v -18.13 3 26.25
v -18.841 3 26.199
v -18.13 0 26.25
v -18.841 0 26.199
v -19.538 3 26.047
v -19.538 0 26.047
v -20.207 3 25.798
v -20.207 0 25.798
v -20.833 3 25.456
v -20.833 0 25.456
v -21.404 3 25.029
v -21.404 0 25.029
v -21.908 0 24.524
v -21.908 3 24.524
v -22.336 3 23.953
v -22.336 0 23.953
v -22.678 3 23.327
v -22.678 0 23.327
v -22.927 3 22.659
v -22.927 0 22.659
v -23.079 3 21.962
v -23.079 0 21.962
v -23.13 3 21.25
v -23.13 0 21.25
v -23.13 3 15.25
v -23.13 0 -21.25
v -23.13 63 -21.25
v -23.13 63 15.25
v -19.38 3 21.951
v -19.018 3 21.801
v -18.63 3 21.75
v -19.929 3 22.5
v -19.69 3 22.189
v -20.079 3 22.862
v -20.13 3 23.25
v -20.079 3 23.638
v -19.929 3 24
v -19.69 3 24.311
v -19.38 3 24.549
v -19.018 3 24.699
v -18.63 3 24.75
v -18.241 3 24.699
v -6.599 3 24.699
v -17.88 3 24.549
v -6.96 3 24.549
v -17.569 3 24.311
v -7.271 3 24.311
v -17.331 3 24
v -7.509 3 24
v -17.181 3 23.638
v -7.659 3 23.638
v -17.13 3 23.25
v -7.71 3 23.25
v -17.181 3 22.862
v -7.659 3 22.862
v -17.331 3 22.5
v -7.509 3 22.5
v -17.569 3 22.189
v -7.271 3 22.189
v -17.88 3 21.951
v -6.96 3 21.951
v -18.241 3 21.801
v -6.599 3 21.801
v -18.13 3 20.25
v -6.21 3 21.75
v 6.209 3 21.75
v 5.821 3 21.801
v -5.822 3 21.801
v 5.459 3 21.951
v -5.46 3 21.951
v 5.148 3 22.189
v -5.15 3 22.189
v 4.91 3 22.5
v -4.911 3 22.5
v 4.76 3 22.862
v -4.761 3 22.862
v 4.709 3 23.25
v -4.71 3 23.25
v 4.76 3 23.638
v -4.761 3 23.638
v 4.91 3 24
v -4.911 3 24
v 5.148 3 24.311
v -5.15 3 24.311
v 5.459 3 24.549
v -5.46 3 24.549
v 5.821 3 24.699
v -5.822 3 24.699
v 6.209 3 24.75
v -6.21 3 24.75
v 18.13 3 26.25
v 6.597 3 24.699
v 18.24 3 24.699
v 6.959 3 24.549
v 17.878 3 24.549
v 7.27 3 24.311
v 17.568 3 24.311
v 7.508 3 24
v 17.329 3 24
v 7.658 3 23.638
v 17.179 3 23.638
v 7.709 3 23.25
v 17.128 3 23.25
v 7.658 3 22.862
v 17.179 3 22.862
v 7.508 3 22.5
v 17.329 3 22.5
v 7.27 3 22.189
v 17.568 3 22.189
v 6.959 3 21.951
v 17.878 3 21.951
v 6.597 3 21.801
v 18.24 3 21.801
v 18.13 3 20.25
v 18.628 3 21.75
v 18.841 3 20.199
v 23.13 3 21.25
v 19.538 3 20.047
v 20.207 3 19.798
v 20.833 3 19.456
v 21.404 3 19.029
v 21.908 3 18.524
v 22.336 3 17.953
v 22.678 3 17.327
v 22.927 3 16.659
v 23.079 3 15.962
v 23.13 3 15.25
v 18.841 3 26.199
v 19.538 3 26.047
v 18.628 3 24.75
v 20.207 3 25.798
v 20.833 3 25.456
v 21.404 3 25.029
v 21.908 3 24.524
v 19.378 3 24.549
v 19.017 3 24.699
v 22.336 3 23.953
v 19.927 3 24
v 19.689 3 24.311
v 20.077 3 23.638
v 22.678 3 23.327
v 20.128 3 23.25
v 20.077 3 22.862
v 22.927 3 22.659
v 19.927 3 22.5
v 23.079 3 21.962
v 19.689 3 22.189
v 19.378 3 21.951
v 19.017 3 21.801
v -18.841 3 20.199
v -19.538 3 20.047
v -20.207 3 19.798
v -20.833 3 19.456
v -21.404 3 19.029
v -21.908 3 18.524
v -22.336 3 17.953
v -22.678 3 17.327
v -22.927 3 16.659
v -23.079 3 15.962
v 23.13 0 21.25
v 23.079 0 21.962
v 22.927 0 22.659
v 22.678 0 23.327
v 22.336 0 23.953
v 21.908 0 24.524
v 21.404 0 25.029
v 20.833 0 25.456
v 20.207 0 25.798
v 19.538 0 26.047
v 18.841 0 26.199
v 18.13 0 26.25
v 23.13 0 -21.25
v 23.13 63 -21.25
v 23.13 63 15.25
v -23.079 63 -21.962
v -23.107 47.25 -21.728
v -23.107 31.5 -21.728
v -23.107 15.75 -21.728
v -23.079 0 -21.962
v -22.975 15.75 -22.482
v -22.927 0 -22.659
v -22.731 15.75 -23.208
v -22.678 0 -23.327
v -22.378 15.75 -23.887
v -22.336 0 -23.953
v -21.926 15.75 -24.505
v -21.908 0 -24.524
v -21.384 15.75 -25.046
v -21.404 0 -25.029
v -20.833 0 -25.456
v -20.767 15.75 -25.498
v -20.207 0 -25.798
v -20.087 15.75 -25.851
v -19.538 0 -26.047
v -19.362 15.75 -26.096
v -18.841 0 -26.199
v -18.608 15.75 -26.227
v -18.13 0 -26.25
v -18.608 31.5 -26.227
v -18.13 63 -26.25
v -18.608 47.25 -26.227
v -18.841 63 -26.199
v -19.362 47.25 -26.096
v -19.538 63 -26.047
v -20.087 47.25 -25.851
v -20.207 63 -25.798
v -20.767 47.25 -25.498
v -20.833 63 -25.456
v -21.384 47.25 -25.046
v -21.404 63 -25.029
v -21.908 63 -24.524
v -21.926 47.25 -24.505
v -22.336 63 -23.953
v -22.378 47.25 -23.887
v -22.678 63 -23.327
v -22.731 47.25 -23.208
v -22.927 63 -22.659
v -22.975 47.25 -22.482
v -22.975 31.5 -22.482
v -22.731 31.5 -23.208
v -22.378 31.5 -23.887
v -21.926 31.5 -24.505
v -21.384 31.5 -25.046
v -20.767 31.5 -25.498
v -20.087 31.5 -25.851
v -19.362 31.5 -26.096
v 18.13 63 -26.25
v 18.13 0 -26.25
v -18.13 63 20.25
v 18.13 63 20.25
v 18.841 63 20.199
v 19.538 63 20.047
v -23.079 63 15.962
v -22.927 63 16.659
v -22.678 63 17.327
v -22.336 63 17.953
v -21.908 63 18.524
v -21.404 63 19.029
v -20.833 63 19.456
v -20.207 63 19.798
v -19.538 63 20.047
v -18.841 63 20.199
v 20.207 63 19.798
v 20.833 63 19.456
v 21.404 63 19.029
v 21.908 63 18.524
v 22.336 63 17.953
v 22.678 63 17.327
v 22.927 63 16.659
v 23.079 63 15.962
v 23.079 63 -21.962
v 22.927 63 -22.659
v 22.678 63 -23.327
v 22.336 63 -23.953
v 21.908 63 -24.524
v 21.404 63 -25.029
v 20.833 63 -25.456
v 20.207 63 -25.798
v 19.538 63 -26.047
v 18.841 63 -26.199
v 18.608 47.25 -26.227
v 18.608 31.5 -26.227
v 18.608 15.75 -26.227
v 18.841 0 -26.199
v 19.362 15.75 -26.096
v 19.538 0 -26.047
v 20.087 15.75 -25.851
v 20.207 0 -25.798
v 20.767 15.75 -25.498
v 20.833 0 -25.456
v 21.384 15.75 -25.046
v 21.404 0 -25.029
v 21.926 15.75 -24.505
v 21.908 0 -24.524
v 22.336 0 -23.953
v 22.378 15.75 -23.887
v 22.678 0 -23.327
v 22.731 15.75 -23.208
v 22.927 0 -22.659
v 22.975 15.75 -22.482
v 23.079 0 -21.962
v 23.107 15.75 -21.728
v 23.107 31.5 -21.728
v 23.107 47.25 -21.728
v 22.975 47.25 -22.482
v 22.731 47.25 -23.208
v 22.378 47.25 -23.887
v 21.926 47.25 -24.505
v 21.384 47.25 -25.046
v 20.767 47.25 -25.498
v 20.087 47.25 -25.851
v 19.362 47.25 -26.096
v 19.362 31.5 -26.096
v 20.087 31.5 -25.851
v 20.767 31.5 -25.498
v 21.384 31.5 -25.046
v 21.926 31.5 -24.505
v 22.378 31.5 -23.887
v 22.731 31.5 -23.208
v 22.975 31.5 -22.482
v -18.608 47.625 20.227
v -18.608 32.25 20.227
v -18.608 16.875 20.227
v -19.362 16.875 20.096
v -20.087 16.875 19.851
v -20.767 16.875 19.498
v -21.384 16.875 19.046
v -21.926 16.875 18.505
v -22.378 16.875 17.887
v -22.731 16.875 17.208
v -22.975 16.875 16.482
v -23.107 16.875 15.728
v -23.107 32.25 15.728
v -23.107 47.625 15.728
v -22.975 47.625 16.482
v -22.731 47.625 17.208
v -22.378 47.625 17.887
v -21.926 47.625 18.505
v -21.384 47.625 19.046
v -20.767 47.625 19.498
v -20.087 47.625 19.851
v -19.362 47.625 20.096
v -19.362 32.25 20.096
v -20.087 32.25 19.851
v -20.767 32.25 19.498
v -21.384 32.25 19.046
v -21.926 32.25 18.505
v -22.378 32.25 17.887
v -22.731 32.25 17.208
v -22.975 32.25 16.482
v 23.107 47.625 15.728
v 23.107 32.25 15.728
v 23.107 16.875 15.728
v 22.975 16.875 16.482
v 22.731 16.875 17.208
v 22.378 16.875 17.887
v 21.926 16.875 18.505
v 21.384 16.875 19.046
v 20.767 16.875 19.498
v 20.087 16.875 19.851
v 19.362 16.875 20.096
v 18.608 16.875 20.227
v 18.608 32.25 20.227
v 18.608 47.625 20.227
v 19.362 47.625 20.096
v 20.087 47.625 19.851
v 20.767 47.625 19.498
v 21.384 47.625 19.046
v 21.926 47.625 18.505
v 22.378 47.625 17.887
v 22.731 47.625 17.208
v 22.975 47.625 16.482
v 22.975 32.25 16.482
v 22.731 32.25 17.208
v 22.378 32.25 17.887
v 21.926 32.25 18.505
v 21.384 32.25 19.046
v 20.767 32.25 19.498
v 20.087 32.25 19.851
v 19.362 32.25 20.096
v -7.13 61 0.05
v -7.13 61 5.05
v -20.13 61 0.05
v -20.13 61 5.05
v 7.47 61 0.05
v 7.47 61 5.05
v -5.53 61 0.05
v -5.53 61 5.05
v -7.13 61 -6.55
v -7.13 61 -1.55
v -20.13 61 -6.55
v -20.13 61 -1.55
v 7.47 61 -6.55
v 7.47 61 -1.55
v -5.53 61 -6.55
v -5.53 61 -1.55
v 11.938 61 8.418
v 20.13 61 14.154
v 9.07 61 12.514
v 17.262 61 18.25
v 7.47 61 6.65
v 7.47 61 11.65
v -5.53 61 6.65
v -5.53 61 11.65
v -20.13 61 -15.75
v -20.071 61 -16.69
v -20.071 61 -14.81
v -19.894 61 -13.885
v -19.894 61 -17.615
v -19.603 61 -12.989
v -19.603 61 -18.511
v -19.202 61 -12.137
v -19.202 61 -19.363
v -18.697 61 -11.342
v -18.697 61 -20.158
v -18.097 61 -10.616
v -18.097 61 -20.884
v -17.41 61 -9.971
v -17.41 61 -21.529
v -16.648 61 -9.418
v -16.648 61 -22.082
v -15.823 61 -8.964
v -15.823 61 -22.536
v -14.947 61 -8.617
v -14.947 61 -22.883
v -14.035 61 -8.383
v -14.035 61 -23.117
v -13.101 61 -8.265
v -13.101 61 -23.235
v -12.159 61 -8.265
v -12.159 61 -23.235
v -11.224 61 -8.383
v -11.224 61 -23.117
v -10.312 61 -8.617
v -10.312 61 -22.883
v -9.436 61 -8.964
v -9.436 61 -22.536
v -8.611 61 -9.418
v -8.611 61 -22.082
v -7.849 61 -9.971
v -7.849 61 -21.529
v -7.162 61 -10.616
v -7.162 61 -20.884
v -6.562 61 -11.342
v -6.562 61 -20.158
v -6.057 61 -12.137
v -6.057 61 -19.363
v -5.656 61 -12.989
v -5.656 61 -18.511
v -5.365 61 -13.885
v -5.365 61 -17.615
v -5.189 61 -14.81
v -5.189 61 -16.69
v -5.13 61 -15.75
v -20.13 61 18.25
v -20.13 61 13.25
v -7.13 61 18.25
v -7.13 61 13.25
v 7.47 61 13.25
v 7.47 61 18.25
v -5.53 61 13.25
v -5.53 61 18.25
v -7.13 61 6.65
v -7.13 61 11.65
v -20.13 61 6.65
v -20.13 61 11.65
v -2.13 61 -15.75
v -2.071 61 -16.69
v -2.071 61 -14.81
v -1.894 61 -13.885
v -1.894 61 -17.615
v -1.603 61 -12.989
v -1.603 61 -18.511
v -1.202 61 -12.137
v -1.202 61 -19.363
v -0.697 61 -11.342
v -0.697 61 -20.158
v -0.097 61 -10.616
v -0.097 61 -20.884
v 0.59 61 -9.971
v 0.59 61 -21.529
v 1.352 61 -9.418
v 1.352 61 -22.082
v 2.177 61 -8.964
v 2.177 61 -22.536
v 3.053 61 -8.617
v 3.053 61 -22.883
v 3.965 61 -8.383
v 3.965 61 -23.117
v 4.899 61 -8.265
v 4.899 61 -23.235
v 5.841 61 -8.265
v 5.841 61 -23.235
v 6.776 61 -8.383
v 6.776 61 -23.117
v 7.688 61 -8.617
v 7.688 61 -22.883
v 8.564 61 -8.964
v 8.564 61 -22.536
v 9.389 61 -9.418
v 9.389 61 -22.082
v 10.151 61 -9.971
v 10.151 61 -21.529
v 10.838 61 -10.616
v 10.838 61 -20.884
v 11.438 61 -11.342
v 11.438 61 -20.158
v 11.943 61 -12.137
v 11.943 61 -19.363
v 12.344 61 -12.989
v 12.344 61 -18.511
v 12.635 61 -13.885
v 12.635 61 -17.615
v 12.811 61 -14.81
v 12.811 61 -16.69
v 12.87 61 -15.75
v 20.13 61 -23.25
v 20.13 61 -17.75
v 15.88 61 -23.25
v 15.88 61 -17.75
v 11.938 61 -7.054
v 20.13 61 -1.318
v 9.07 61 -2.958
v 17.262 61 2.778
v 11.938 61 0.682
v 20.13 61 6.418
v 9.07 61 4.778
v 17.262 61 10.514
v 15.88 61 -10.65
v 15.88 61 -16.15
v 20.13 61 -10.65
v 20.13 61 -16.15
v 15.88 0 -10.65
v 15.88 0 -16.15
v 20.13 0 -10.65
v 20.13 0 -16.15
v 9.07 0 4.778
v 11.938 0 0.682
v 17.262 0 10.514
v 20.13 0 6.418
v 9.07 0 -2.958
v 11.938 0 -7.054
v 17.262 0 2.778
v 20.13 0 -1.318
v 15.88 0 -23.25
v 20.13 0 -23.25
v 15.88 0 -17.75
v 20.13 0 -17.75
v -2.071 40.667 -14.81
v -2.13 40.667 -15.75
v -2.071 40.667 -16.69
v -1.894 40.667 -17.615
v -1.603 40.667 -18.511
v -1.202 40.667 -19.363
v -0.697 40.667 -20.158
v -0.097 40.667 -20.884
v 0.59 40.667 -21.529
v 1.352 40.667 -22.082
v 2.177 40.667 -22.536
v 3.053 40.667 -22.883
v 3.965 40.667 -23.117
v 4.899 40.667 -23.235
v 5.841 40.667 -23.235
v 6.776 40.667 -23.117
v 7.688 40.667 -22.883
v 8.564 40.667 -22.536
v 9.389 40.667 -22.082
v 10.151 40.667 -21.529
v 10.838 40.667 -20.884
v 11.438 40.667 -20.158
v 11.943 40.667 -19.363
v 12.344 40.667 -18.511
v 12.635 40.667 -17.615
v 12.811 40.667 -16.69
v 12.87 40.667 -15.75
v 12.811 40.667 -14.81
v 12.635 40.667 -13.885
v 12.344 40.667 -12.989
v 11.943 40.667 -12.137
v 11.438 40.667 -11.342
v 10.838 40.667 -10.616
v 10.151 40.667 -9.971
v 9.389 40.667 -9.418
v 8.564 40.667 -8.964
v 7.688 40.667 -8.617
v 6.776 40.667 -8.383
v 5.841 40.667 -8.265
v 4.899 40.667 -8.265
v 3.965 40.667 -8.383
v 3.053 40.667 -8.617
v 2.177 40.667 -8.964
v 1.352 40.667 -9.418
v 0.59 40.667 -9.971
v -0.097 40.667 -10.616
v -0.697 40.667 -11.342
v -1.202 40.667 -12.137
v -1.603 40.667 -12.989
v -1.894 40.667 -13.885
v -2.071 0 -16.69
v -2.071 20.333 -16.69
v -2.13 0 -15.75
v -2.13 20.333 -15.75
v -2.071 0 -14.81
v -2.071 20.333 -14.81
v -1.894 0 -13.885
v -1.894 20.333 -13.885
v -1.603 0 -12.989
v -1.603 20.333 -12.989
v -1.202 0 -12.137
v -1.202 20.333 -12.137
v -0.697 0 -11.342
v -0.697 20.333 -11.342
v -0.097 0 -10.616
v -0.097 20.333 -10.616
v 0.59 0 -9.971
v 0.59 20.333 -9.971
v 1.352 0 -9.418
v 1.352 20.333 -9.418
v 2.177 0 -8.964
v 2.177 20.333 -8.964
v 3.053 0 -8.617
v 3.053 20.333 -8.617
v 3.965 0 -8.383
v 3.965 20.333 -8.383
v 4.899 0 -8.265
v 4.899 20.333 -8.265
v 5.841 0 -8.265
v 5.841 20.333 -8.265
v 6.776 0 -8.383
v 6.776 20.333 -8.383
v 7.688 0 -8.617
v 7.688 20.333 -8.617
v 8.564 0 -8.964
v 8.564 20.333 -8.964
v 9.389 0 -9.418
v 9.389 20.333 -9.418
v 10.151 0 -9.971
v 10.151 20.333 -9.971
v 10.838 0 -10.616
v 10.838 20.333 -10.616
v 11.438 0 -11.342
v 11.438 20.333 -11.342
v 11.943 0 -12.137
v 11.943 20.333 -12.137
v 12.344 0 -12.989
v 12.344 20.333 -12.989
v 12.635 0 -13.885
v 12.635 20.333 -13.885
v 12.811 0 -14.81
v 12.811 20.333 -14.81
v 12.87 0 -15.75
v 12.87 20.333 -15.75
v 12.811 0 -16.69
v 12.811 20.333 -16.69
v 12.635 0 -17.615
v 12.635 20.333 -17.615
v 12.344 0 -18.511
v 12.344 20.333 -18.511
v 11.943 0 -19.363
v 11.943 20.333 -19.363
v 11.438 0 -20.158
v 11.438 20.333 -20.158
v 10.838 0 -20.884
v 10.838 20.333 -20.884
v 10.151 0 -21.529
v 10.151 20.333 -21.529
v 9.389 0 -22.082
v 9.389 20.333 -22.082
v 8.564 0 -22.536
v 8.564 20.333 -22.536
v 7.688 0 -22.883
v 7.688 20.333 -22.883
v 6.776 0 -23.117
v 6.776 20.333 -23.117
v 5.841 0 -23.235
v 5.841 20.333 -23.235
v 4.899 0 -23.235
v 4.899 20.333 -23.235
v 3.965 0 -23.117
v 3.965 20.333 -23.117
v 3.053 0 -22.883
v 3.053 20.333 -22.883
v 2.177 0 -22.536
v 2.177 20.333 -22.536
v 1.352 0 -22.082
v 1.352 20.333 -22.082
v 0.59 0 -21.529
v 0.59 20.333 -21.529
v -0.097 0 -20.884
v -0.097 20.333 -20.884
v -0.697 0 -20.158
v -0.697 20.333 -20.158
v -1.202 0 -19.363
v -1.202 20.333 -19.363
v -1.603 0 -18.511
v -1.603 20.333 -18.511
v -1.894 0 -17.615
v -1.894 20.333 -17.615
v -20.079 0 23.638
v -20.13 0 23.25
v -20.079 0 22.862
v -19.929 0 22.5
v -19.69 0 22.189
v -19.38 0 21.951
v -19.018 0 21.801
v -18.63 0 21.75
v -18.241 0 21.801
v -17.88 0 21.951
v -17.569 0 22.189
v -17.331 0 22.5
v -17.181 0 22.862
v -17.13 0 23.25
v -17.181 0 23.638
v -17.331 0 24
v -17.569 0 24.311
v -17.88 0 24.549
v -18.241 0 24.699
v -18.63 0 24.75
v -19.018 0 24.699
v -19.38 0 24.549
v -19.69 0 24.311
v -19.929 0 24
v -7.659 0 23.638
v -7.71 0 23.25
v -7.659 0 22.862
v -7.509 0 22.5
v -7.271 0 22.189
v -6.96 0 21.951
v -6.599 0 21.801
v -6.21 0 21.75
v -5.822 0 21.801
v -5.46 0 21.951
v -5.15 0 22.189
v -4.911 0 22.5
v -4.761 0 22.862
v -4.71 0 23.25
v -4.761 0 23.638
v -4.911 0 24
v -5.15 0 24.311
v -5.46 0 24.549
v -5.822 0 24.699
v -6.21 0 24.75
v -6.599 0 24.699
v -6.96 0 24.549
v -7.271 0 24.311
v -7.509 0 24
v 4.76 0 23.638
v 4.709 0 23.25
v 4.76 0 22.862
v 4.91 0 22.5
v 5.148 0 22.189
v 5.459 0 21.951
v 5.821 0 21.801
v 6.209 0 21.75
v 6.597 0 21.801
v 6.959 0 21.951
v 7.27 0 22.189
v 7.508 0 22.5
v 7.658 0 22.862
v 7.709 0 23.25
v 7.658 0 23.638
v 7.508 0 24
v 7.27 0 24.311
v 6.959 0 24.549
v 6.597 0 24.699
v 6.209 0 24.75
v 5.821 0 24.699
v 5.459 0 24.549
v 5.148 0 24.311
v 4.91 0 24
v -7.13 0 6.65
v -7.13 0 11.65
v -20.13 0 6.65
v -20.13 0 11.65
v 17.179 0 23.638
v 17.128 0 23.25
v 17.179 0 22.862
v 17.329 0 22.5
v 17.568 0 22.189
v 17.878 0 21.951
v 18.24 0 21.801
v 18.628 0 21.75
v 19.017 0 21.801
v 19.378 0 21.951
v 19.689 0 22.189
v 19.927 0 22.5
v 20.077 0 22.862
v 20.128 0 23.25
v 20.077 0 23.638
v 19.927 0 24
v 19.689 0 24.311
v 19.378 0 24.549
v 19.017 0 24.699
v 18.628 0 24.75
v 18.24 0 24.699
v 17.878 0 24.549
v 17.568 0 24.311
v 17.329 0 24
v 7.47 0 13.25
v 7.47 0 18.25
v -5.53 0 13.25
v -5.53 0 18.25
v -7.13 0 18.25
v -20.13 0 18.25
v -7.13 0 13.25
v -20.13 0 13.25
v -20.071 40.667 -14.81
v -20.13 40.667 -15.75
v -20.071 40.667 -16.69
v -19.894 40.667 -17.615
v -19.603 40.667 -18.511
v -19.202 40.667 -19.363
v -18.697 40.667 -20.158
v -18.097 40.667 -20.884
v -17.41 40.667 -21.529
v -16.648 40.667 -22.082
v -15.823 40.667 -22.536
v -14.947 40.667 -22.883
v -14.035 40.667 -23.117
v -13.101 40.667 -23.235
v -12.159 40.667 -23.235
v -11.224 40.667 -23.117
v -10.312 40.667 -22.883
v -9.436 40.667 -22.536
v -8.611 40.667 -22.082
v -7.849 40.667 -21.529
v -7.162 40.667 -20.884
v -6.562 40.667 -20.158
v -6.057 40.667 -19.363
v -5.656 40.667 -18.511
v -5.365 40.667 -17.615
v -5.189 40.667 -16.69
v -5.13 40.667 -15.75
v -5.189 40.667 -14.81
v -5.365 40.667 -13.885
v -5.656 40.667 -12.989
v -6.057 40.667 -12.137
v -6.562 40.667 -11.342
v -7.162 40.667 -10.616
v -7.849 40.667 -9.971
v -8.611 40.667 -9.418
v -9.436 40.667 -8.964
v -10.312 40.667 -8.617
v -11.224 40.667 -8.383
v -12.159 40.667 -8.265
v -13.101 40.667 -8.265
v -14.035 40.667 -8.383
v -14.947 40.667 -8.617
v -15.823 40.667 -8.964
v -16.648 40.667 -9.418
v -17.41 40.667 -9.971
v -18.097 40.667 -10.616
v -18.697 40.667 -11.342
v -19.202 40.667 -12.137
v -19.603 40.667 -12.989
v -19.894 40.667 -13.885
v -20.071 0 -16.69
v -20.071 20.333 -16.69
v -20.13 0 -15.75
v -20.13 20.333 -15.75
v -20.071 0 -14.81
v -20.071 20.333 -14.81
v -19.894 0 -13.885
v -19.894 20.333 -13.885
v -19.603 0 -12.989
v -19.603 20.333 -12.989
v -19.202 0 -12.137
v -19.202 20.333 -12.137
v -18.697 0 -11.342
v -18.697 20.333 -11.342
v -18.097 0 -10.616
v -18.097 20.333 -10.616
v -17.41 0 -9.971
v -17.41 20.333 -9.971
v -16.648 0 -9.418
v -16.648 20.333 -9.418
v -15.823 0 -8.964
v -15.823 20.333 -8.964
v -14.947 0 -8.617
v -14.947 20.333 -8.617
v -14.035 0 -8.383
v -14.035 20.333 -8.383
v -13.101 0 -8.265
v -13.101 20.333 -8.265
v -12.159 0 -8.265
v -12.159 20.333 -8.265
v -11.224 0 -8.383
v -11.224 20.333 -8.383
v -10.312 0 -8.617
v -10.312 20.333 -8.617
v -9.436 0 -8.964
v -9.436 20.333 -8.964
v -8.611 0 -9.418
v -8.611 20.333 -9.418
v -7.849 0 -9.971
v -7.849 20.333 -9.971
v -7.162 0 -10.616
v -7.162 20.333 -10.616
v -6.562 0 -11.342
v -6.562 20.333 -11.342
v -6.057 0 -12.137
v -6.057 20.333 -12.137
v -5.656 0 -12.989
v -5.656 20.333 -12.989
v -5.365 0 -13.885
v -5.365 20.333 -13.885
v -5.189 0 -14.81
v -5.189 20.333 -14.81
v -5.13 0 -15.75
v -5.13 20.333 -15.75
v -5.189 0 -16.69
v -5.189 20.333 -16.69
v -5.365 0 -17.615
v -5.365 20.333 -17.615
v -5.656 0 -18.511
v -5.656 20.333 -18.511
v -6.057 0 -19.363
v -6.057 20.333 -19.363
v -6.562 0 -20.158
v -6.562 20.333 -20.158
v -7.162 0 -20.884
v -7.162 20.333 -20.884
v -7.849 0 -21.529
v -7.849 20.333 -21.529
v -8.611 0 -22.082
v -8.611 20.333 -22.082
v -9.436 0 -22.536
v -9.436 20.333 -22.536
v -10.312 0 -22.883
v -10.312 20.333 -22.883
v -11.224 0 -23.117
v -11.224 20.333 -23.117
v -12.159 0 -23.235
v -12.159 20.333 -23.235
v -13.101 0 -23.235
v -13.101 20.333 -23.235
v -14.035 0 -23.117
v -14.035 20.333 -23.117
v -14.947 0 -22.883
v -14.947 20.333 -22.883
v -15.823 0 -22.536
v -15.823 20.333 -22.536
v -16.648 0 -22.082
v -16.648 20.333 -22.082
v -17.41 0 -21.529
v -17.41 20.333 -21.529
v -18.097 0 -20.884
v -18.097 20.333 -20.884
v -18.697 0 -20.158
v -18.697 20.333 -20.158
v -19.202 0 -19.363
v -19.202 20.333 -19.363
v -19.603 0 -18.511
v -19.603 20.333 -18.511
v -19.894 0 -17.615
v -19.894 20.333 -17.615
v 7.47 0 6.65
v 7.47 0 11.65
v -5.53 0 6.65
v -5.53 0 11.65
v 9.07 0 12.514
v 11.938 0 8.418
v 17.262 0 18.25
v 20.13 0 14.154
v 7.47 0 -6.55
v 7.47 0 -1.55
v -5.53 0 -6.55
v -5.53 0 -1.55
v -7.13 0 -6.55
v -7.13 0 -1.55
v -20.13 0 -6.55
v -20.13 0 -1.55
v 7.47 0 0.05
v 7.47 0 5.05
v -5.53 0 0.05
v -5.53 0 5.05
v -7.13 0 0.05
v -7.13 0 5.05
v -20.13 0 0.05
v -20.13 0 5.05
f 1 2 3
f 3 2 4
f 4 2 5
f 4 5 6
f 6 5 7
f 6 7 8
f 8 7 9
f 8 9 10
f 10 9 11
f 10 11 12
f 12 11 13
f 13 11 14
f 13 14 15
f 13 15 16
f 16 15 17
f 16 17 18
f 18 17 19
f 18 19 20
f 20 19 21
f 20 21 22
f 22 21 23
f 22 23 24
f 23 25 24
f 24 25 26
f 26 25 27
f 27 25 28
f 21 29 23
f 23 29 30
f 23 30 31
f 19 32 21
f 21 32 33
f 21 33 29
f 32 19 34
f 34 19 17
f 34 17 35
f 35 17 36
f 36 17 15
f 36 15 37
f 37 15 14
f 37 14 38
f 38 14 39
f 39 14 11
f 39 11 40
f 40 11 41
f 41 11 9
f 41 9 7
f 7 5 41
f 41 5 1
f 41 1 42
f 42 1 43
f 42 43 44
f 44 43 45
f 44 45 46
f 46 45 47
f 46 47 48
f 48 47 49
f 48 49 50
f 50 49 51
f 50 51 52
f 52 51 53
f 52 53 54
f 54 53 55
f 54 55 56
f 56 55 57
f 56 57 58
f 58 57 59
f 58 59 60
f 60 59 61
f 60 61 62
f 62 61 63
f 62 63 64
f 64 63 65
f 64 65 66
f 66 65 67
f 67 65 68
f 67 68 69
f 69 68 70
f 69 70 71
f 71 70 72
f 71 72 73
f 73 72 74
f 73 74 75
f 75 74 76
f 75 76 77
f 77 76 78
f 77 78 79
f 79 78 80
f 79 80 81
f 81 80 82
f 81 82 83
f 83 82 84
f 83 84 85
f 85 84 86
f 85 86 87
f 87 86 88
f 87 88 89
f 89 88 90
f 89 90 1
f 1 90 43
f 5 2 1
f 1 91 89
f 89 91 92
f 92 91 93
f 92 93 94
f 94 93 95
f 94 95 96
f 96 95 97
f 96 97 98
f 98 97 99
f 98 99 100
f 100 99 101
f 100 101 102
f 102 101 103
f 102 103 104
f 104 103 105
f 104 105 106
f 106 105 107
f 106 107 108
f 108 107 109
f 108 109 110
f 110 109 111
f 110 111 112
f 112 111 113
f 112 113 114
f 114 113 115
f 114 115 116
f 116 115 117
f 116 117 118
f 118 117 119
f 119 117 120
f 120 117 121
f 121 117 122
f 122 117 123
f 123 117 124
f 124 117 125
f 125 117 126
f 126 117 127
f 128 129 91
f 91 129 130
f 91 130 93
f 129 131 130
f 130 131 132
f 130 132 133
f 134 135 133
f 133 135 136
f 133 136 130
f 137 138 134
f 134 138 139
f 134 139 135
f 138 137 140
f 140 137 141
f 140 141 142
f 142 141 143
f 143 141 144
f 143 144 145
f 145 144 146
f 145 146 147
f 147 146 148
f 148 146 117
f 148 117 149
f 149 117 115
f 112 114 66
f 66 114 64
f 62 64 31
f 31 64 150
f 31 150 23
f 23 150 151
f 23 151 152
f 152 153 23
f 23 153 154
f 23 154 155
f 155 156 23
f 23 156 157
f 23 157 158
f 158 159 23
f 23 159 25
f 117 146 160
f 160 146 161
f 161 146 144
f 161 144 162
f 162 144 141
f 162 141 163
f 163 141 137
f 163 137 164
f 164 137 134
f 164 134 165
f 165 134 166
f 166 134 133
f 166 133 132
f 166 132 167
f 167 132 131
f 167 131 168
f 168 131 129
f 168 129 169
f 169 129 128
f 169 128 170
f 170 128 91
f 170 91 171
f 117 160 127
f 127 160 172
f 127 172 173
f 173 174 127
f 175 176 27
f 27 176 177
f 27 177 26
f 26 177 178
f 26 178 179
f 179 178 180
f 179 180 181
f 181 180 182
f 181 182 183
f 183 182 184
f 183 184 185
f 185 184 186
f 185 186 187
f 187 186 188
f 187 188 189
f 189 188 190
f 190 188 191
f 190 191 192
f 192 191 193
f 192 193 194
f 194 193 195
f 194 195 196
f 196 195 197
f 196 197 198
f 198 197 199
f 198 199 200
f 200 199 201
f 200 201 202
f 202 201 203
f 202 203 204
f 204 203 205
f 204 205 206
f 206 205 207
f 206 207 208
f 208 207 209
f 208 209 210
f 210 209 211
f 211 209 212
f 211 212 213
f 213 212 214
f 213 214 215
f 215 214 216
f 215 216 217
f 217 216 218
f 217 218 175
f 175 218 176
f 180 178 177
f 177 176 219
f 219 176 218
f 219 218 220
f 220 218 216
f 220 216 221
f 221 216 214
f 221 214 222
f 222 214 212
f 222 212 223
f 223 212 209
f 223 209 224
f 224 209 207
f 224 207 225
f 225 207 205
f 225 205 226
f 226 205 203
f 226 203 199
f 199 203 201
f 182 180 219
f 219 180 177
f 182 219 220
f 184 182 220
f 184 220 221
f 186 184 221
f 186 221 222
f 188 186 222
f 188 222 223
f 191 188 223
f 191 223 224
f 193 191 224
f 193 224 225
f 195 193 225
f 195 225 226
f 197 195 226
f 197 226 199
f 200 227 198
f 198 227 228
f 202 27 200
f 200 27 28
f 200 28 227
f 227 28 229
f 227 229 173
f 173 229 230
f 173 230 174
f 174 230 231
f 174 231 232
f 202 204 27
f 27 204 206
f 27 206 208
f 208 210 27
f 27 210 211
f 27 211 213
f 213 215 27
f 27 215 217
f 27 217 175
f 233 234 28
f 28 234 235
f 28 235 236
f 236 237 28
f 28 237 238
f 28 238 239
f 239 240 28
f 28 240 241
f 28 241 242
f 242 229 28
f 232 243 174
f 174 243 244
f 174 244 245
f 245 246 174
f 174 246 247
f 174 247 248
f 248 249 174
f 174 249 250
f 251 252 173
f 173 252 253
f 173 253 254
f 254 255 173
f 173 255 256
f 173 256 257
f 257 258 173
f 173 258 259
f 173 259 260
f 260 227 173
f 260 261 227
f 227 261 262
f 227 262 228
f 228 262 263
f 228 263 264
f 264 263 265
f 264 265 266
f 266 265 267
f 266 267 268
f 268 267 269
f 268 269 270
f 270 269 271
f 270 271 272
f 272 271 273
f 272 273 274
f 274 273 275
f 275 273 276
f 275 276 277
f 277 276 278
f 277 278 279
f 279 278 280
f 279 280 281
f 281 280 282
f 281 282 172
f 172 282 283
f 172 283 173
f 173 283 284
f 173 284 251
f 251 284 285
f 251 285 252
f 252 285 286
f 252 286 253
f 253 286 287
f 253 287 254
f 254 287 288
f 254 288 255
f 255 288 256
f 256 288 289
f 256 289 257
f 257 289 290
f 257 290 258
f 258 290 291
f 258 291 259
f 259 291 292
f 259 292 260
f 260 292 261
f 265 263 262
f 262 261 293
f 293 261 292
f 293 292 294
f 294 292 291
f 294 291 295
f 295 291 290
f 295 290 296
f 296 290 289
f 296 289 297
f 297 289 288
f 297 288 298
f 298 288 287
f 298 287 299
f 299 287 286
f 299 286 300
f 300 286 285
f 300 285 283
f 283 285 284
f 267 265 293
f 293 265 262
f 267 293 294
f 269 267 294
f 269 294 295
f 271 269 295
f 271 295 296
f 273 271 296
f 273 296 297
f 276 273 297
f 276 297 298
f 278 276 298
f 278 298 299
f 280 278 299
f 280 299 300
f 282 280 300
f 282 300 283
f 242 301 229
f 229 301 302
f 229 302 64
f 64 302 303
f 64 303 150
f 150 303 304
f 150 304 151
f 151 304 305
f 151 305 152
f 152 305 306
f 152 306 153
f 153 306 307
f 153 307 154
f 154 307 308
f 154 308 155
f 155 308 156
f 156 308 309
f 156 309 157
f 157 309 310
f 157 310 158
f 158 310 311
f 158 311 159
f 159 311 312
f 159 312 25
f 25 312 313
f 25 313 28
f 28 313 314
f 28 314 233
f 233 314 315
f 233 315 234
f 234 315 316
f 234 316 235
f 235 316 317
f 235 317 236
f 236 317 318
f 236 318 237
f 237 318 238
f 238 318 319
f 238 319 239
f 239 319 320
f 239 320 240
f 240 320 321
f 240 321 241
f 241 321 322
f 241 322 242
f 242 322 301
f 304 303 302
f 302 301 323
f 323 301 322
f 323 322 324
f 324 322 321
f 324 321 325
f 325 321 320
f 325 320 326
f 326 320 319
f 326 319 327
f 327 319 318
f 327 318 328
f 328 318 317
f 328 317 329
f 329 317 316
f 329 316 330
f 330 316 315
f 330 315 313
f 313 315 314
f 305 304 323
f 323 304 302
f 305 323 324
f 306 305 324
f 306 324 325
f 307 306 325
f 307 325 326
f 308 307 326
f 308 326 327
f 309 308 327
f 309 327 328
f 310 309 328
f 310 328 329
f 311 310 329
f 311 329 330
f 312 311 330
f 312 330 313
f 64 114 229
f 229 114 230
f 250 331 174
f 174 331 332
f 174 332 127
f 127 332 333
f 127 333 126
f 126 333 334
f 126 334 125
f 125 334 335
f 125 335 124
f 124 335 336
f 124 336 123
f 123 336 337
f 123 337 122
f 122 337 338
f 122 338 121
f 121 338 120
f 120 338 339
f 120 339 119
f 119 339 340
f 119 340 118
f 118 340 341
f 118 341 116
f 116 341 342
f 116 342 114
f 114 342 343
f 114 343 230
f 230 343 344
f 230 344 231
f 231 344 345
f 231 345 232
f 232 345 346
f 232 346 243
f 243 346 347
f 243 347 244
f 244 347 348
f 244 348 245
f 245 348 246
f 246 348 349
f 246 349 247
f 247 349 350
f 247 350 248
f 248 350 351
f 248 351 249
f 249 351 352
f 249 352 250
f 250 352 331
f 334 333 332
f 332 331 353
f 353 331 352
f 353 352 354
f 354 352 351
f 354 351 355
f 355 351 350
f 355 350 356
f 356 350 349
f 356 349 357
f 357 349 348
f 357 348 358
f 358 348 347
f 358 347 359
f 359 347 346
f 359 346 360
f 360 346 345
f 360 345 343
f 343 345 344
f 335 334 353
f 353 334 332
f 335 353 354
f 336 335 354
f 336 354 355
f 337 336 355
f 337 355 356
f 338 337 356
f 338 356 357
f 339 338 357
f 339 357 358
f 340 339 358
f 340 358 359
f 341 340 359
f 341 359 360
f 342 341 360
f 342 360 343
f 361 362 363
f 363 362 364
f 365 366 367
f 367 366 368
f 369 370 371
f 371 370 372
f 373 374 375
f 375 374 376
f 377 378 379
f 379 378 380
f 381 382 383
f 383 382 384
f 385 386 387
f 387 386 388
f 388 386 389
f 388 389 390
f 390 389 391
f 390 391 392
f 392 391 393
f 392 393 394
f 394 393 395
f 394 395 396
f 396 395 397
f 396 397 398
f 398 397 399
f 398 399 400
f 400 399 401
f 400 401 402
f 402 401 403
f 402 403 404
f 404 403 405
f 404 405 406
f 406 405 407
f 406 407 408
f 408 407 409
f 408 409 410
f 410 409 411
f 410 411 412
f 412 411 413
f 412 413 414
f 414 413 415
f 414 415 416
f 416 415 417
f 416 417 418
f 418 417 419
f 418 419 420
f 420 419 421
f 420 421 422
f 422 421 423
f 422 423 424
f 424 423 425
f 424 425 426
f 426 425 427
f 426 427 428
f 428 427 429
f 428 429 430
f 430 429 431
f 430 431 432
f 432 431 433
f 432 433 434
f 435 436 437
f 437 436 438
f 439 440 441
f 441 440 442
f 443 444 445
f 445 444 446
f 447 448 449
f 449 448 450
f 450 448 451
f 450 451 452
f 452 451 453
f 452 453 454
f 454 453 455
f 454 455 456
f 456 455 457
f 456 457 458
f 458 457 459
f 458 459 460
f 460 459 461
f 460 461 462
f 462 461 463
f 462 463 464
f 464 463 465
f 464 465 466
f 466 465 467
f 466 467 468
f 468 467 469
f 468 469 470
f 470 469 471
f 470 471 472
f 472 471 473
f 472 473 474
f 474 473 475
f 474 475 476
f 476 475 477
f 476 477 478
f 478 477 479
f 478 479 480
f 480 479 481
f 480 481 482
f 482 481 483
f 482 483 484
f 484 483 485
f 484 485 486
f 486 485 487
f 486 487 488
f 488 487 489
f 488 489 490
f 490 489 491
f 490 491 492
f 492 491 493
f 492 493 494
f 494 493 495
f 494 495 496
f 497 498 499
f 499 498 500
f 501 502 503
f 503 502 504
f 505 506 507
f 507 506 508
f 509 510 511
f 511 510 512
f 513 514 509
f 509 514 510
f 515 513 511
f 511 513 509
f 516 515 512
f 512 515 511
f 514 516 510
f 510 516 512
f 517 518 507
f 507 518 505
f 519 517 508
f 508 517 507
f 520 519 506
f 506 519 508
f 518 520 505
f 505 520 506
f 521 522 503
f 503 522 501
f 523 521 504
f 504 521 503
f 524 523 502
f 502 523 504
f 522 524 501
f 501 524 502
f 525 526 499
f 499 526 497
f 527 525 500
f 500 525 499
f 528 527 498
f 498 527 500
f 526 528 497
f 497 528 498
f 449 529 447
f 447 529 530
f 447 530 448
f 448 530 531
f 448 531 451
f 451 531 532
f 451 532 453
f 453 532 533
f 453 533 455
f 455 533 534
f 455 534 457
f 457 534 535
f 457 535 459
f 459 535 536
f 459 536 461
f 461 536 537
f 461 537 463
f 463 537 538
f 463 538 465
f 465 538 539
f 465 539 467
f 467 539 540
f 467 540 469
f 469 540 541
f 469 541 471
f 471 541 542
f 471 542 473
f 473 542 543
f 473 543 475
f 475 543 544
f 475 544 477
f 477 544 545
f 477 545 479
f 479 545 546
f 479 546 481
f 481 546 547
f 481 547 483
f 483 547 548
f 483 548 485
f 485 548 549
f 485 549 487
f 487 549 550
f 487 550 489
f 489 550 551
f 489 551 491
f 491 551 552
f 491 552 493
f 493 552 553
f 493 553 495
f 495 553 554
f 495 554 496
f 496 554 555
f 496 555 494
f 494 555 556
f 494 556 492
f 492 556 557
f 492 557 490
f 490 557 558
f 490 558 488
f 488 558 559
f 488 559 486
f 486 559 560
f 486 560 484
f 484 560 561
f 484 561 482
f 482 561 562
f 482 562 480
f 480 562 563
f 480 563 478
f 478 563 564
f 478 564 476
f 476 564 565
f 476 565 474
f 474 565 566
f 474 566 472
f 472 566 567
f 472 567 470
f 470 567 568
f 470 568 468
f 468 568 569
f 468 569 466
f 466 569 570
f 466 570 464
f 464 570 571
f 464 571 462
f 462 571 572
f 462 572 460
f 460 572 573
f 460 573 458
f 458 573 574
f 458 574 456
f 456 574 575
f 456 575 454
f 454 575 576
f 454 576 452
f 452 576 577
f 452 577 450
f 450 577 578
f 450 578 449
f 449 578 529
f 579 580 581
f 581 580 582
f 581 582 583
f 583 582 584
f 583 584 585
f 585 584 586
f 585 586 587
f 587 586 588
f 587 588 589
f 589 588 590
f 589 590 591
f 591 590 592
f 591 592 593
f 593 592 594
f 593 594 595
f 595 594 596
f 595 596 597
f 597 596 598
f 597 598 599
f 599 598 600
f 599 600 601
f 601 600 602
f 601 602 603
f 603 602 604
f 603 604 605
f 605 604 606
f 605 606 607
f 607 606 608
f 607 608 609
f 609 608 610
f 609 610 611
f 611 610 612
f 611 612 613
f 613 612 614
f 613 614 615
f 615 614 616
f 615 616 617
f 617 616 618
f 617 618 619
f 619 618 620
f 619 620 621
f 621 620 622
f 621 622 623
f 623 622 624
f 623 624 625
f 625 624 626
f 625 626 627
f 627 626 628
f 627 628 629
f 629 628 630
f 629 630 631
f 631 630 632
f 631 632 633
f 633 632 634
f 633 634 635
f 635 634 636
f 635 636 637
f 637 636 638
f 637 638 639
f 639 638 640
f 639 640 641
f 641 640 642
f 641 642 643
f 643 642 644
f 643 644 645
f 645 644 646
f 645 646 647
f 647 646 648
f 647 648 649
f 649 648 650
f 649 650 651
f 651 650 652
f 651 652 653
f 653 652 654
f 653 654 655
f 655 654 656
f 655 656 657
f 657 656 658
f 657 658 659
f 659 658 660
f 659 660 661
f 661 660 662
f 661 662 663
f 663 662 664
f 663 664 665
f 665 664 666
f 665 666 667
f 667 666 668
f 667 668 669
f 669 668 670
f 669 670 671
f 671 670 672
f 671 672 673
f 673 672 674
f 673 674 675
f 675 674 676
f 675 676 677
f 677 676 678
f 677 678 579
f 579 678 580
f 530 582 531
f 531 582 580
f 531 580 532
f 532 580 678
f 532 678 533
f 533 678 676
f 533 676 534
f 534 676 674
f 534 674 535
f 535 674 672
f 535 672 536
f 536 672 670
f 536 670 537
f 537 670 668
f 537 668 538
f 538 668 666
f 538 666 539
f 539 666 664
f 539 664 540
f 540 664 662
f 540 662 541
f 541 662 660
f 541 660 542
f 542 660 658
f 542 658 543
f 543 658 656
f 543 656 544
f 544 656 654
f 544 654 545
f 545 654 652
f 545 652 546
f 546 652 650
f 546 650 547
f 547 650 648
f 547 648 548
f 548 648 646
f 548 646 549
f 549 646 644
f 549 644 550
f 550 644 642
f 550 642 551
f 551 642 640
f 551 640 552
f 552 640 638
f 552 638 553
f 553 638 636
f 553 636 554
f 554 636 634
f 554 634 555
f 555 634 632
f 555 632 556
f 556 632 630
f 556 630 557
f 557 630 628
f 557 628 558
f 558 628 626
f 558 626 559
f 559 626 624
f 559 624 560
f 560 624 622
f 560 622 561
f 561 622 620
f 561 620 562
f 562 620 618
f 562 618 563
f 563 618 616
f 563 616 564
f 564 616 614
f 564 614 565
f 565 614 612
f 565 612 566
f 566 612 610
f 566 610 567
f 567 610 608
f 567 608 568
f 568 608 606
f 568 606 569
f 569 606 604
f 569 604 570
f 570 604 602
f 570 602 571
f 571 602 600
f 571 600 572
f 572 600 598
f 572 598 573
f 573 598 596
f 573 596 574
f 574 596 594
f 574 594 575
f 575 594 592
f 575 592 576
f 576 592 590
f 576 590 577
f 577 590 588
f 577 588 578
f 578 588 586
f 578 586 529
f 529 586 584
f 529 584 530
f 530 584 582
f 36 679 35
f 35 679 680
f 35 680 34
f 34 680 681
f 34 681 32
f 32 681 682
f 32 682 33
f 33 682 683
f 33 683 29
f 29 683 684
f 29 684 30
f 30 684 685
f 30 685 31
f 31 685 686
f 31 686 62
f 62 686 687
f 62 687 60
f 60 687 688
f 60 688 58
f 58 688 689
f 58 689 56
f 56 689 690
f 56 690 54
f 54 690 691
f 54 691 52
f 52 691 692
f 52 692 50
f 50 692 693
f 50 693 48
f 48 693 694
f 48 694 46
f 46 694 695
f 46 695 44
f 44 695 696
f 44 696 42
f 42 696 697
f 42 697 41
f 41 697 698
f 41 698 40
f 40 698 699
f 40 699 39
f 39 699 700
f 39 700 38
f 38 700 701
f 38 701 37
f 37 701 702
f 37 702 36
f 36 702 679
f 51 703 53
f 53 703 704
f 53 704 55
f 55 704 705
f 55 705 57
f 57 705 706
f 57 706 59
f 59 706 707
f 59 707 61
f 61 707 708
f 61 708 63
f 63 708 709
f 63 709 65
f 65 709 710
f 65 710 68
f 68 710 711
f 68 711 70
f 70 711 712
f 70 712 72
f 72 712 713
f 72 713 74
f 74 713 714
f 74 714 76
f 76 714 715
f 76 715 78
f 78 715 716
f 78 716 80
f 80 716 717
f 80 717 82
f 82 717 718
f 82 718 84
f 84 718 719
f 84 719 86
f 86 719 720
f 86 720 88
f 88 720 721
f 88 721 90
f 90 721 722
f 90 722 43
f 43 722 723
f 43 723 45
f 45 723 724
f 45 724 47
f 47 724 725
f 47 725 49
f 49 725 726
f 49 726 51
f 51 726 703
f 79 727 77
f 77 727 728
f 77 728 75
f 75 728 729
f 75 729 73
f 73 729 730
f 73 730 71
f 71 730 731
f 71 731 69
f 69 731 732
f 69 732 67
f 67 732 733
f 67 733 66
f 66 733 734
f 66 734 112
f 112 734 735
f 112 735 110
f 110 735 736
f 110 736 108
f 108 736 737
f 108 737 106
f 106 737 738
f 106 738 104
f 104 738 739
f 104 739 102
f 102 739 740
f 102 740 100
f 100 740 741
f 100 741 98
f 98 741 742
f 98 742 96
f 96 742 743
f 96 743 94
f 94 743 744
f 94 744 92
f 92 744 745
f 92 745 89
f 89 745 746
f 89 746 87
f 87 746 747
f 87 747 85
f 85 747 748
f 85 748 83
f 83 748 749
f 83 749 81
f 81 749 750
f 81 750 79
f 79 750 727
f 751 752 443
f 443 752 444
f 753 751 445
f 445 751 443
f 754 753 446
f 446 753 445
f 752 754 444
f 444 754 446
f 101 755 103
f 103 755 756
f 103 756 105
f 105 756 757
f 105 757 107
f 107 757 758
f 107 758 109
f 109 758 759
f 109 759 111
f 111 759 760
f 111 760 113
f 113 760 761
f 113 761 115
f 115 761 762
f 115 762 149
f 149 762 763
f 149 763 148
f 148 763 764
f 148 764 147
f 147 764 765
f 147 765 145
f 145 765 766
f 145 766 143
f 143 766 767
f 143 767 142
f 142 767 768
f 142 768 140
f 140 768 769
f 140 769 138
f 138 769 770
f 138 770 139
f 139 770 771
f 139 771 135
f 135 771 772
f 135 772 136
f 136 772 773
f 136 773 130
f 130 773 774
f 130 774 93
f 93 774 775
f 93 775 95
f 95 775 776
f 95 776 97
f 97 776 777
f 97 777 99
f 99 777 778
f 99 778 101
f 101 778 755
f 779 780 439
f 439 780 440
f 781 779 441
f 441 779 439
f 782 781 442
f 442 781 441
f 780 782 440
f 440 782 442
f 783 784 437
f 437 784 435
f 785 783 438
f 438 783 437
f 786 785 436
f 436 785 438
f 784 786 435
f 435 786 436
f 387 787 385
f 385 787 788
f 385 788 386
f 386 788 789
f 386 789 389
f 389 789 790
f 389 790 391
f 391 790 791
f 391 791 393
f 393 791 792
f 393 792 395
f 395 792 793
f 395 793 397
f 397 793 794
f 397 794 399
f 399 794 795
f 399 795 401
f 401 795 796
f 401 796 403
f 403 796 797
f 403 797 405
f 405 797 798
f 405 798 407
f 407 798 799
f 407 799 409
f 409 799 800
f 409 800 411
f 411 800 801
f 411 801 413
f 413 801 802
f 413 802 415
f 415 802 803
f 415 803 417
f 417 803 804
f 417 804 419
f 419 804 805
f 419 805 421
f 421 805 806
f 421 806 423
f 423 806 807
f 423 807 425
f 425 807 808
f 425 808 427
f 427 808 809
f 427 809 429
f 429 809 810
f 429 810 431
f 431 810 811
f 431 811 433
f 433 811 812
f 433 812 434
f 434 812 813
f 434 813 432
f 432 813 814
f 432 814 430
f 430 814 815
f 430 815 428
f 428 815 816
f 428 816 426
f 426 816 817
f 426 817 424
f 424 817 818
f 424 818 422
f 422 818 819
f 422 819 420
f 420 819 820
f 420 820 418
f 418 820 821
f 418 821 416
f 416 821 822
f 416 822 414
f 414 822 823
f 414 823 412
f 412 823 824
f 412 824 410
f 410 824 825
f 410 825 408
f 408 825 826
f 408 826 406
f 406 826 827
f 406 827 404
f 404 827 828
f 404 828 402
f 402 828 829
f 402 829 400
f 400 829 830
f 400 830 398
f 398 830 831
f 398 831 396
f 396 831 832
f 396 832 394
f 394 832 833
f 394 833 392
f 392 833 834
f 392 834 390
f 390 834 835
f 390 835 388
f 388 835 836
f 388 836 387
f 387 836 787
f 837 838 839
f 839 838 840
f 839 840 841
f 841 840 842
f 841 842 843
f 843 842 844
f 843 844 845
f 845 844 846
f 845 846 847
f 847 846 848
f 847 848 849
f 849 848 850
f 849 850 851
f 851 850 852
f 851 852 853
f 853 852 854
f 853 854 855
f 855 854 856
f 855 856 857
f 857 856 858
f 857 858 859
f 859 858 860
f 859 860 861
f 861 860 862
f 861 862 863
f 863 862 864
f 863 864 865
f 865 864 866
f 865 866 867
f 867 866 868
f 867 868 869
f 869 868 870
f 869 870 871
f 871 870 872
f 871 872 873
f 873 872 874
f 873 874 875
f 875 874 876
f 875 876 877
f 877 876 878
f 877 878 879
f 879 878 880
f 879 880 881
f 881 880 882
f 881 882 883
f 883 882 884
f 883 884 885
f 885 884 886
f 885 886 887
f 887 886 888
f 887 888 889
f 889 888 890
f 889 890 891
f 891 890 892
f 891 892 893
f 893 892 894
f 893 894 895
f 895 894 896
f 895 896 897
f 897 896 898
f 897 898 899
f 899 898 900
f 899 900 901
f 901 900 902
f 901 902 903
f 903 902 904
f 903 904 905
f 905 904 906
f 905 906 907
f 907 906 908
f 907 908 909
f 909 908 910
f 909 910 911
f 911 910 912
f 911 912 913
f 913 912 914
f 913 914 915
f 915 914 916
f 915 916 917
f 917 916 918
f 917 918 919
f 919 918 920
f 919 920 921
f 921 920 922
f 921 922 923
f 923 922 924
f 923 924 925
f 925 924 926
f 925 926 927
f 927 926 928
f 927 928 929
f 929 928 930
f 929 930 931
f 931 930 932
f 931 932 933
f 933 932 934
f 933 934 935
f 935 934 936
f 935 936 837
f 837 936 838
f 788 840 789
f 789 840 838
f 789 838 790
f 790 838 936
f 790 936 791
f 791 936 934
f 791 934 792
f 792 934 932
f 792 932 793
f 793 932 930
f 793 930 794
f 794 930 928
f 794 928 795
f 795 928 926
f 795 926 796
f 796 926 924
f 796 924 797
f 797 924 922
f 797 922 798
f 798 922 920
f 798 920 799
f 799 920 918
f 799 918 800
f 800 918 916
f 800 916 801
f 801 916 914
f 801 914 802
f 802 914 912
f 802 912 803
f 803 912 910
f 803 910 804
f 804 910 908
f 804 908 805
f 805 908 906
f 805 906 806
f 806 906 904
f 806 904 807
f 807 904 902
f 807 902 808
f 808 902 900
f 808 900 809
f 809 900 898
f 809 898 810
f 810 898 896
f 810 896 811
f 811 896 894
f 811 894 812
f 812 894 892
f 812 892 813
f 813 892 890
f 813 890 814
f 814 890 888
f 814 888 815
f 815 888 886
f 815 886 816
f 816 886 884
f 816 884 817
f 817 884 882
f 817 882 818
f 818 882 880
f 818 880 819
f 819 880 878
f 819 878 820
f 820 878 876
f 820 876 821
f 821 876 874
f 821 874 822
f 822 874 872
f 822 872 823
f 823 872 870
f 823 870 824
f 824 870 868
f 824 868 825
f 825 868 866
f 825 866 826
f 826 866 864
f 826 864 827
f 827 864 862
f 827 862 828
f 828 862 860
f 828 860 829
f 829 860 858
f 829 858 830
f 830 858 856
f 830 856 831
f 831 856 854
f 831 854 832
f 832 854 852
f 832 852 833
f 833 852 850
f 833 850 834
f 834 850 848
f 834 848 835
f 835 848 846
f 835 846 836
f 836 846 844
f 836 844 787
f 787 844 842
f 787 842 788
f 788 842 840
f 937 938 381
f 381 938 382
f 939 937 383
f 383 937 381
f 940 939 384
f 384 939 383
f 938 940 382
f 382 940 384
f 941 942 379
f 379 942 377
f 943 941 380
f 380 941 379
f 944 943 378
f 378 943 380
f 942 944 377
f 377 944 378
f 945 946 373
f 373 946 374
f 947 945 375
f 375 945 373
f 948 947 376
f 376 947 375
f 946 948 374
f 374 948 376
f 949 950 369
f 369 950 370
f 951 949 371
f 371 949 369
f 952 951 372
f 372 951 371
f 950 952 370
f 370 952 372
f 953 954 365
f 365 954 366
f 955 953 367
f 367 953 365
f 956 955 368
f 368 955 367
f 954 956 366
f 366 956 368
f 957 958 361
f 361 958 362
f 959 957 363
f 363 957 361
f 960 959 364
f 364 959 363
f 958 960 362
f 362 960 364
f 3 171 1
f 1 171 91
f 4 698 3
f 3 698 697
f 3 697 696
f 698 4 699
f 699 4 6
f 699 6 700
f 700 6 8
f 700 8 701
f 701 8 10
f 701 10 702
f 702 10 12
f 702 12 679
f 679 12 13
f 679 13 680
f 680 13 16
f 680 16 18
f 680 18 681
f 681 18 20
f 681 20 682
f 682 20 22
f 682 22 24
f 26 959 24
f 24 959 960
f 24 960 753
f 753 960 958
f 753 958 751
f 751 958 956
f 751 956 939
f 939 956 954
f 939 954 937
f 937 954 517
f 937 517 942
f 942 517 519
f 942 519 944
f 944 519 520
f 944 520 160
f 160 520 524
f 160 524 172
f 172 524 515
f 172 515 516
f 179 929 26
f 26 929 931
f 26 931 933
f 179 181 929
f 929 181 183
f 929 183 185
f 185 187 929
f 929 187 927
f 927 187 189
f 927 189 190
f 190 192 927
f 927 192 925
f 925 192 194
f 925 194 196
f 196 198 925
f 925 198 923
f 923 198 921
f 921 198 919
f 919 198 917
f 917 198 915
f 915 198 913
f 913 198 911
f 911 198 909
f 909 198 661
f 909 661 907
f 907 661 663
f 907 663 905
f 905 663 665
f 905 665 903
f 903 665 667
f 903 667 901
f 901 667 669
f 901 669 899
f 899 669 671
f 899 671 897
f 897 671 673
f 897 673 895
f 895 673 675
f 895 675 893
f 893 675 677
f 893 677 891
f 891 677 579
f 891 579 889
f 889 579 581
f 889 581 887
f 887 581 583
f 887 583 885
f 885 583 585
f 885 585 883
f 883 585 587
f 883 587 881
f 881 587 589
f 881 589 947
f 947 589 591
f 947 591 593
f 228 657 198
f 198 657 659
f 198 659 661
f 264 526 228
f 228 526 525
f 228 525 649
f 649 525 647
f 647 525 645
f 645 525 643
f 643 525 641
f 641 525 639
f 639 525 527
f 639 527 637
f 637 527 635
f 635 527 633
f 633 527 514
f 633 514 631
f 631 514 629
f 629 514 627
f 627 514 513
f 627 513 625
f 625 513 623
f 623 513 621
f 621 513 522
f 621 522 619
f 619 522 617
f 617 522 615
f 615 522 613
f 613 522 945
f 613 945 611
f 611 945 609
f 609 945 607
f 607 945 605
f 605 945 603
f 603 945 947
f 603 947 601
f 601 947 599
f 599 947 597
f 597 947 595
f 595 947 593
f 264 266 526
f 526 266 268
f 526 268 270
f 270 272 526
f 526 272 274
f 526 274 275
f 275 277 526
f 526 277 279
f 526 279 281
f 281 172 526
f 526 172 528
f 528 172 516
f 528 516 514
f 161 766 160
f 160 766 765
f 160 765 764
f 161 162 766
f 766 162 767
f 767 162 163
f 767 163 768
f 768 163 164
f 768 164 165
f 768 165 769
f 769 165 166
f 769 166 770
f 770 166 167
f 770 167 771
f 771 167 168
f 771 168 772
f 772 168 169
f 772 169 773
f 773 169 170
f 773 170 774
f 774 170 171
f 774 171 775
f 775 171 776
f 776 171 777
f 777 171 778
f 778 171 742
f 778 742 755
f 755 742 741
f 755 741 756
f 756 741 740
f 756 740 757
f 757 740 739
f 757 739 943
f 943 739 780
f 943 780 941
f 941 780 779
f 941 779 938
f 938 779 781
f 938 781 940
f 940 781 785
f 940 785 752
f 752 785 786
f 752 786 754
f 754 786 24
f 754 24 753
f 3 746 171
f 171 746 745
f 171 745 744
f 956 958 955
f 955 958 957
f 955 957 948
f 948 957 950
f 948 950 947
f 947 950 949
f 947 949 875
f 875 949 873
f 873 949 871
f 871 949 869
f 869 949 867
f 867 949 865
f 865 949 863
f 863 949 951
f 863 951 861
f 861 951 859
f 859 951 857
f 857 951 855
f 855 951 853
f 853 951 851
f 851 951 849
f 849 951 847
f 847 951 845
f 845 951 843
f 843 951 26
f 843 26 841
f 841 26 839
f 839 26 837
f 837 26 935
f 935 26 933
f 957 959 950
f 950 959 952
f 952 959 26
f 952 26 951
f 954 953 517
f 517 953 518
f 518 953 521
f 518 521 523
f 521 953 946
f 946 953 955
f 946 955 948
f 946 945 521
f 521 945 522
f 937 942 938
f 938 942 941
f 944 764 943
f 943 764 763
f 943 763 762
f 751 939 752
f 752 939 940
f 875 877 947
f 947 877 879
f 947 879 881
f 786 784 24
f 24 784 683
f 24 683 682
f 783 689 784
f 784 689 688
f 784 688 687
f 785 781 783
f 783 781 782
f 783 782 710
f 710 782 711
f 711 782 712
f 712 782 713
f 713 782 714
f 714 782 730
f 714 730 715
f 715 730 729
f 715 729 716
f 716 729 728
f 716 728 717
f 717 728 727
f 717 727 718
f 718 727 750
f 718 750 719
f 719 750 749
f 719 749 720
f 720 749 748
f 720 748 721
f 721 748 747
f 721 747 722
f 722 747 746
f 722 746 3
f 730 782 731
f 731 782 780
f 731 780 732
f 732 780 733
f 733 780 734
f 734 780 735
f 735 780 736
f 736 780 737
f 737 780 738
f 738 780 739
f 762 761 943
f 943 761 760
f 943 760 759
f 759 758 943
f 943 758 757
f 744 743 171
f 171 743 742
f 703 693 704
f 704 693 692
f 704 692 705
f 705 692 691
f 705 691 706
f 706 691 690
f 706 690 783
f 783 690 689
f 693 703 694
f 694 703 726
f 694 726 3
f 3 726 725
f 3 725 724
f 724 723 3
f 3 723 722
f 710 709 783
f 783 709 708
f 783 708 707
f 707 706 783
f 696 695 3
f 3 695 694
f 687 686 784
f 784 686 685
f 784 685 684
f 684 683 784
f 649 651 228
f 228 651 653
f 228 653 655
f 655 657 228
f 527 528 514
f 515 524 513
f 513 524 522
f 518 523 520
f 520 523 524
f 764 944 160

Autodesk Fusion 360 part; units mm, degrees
sketch "Sketch1" plane through (0, 0, 0) normal (0, 1, 0) x (1, 0, 0)
  line L0 (23.1297, 26.25) -> (-23.1297, 26.25)
  line L1 (-23.1297, 26.25) -> (-23.1297, -26.25)
  line L2 (-23.1297, -26.25) -> (23.1297, -26.25)
  line L3 (23.1297, -26.25) -> (23.1297, 26.25)
  line L4 (23.1297, 26.25) -> (-23.1297, -26.25) construction
  line L5 (-23.1297, 26.25) -> (23.1297, -26.25) construction
  line L6 (-20.1297, -18.25) -> (-7.1297, -18.25)
  line L7 (-7.1297, -18.25) -> (-7.1297, -13.25)
  line L8 (-7.1297, -13.25) -> (-20.1297, -13.25)
  line L9 (-20.1297, -13.25) -> (-20.1297, -18.25)
  circle A0 centre (-12.6297, 15.75) radius 7.5
  line L10 (-5.5297, -13.25) -> (-5.5297, -18.25)
  line L11 (7.4703, -13.25) -> (-5.5297, -13.25)
  line L12 (7.4703, -18.25) -> (7.4703, -13.25)
  line L13 (-5.5297, -18.25) -> (7.4703, -18.25)
  line L14 (-20.1297, -6.65) -> (-20.1297, -11.65)
  line L15 (-7.1297, -6.65) -> (-20.1297, -6.65)
  line L16 (-7.1297, -11.65) -> (-7.1297, -6.65)
  line L17 (-20.1297, -11.65) -> (-7.1297, -11.65)
  line L18 (-5.5297, -6.65) -> (-5.5297, -11.65)
  line L19 (7.4703, -6.65) -> (-5.5297, -6.65)
  line L20 (7.4703, -11.65) -> (7.4703, -6.65)
  line L21 (-5.5297, -11.65) -> (7.4703, -11.65)
  line L22 (-20.1297, -0.05) -> (-20.1297, -5.05)
  line L23 (-7.1297, -0.05) -> (-20.1297, -0.05)
  line L24 (-7.1297, -5.05) -> (-7.1297, -0.05)
  line L25 (-20.1297, -5.05) -> (-7.1297, -5.05)
  line L26 (-5.5297, -0.05) -> (-5.5297, -5.05)
  line L27 (7.4703, -0.05) -> (-5.5297, -0.05)
  line L28 (7.4703, -5.05) -> (7.4703, -0.05)
  line L29 (-5.5297, -5.05) -> (7.4703, -5.05)
  line L30 (-20.1297, 6.55) -> (-20.1297, 1.55)
  line L31 (-7.1297, 6.55) -> (-20.1297, 6.55)
  line L32 (-7.1297, 1.55) -> (-7.1297, 6.55)
  line L33 (-20.1297, 1.55) -> (-7.1297, 1.55)
  line L34 (-5.5297, 6.55) -> (-5.5297, 1.55)
  line L35 (7.4703, 6.55) -> (-5.5297, 6.55)
  line L36 (7.4703, 1.55) -> (7.4703, 6.55)
  line L37 (-5.5297, 1.55) -> (7.4703, 1.55)
  line L38 (7.4703, -18.25) -> (23.1297, -18.25) construction
  line L39 (17.2618, -18.25) -> (9.0703, -12.5142)
  line L40 (9.0703, -12.5142) -> (11.9382, -8.4185)
  line L41 (11.9382, -8.4185) -> (20.1297, -14.1542)
  line L42 (20.1297, -14.1542) -> (17.2618, -18.25)
  line L43 (17.2618, -10.514) -> (9.0703, -4.7782)
  line L44 (9.0703, -4.7782) -> (11.9382, -0.6825)
  line L45 (11.9382, -0.6825) -> (20.1297, -6.4182)
  line L46 (20.1297, -6.4182) -> (17.2618, -10.514)
  line L47 (17.2618, -2.778) -> (9.0703, 2.9578)
  line L48 (9.0703, 2.9578) -> (11.9382, 7.0535)
  line L49 (11.9382, 7.0535) -> (20.1297, 1.3178)
  line L50 (20.1297, 1.3178) -> (17.2618, -2.778)
  circle A1 centre (5.3703, 15.75) radius 7.5
  line L51 (20.1297, 23.25) -> (15.8797, 23.25)
  line L52 (15.8797, 23.25) -> (15.8797, 17.75)
  line L53 (15.8797, 17.75) -> (20.1297, 17.75)
  line L54 (20.1297, 17.75) -> (20.1297, 23.25)
  line L55 (20.1297, 23.25) -> (15.8797, 17.75) construction
  line L56 (15.8797, 23.25) -> (20.1297, 17.75) construction
  line L57 (20.1297, 10.65) -> (20.1297, 16.15)
  line L58 (15.8797, 16.15) -> (15.8797, 10.65)
  line L59 (15.8797, 10.65) -> (20.1297, 10.65)
  line L60 (20.1297, 16.15) -> (15.8797, 16.15)
  circle A2 centre (-18.6297, -23.25) radius 1.5
  line L61 (-23.1297, -20.25) -> (23.1297, -20.25)
  circle A3 centre (-6.2104, -23.25) radius 1.5
  circle A4 centre (6.209, -23.25) radius 1.5
  circle A5 centre (18.6283, -23.25) radius 1.5
  point P0 (18.0047, 20.5)
  dimension "d1" = 13
  dimension "d2" = 5
  dimension "d4" = 3
  dimension "d5" = 15
  dimension "d6" = 10.5
  dimension "d7" = 10.5
  dimension "d8" = 52.5
  dimension "d11" = 14.6
  dimension "d12" = 6.6
  dimension "d16" = 35
  dimension "d17" = 1.6
  dimension "d18" = 10
  dimension "d19" = 5
  dimension "d21" = 3
  dimension "d24" = 0
  dimension "d25" = 7.736
  dimension "d28" = 18
  dimension "d29" = 0
  dimension "d36" = 4.25
  dimension "d37" = 5.5
  dimension "d38" = 3
  dimension "d39" = 3
  dimension "d42" = 0
  dimension "d43" = -7.1
  dimension "d44" = 3
  dimension "d46" = 4.5
  dimension "d47" = 3
  dimension "d48" = 6
  dimension "d49" = 2
  dimension "d52" = 37.258
  dimension "d53" = 0
extrude "Extrude3" add sketch "Sketch1" along normal blind 3
extrude "Extrude4" add sketch "Sketch1" along normal blind 58 from surface at 3 contours L0 L1 L3 L61
extrude "Extrude5" add sketch "Sketch1" along normal blind 2 from surface at 61 contours L0 L1 L3 L61 | L6 L7 L8 L9 | A0 | L10 L11 L12 L13 | L14 L15 L16 L17 | L18 L19 L20 L21 | L22 L23 L24 L25 | L26 L27 L28 L29 | L30 L31 L32 L33 | L34 L35 L36 L37 | L39 L40 L41 L42 | L43 L44 L45 L46 | L47 L48 L49 L50 | A1 | L51 L52 L53 L54 | L57 L58 L59 L60
fillet "Fillet2" radius 5 6 edges at (23.1297, 1.5, 26.25) (23.1297, 33, 20.25) (-23.1297, 1.5, 26.25) (-23.1297, 33, 20.25) (23.1297, 31.5, -26.25) (-23.1297, 31.5, -26.25)
equation "d6 = 7.5 mm + 3 mm"
equation "d25 = 5.736 mm + 2 mm"
equation "d43 = -5.5 mm - 1.6 mm"
